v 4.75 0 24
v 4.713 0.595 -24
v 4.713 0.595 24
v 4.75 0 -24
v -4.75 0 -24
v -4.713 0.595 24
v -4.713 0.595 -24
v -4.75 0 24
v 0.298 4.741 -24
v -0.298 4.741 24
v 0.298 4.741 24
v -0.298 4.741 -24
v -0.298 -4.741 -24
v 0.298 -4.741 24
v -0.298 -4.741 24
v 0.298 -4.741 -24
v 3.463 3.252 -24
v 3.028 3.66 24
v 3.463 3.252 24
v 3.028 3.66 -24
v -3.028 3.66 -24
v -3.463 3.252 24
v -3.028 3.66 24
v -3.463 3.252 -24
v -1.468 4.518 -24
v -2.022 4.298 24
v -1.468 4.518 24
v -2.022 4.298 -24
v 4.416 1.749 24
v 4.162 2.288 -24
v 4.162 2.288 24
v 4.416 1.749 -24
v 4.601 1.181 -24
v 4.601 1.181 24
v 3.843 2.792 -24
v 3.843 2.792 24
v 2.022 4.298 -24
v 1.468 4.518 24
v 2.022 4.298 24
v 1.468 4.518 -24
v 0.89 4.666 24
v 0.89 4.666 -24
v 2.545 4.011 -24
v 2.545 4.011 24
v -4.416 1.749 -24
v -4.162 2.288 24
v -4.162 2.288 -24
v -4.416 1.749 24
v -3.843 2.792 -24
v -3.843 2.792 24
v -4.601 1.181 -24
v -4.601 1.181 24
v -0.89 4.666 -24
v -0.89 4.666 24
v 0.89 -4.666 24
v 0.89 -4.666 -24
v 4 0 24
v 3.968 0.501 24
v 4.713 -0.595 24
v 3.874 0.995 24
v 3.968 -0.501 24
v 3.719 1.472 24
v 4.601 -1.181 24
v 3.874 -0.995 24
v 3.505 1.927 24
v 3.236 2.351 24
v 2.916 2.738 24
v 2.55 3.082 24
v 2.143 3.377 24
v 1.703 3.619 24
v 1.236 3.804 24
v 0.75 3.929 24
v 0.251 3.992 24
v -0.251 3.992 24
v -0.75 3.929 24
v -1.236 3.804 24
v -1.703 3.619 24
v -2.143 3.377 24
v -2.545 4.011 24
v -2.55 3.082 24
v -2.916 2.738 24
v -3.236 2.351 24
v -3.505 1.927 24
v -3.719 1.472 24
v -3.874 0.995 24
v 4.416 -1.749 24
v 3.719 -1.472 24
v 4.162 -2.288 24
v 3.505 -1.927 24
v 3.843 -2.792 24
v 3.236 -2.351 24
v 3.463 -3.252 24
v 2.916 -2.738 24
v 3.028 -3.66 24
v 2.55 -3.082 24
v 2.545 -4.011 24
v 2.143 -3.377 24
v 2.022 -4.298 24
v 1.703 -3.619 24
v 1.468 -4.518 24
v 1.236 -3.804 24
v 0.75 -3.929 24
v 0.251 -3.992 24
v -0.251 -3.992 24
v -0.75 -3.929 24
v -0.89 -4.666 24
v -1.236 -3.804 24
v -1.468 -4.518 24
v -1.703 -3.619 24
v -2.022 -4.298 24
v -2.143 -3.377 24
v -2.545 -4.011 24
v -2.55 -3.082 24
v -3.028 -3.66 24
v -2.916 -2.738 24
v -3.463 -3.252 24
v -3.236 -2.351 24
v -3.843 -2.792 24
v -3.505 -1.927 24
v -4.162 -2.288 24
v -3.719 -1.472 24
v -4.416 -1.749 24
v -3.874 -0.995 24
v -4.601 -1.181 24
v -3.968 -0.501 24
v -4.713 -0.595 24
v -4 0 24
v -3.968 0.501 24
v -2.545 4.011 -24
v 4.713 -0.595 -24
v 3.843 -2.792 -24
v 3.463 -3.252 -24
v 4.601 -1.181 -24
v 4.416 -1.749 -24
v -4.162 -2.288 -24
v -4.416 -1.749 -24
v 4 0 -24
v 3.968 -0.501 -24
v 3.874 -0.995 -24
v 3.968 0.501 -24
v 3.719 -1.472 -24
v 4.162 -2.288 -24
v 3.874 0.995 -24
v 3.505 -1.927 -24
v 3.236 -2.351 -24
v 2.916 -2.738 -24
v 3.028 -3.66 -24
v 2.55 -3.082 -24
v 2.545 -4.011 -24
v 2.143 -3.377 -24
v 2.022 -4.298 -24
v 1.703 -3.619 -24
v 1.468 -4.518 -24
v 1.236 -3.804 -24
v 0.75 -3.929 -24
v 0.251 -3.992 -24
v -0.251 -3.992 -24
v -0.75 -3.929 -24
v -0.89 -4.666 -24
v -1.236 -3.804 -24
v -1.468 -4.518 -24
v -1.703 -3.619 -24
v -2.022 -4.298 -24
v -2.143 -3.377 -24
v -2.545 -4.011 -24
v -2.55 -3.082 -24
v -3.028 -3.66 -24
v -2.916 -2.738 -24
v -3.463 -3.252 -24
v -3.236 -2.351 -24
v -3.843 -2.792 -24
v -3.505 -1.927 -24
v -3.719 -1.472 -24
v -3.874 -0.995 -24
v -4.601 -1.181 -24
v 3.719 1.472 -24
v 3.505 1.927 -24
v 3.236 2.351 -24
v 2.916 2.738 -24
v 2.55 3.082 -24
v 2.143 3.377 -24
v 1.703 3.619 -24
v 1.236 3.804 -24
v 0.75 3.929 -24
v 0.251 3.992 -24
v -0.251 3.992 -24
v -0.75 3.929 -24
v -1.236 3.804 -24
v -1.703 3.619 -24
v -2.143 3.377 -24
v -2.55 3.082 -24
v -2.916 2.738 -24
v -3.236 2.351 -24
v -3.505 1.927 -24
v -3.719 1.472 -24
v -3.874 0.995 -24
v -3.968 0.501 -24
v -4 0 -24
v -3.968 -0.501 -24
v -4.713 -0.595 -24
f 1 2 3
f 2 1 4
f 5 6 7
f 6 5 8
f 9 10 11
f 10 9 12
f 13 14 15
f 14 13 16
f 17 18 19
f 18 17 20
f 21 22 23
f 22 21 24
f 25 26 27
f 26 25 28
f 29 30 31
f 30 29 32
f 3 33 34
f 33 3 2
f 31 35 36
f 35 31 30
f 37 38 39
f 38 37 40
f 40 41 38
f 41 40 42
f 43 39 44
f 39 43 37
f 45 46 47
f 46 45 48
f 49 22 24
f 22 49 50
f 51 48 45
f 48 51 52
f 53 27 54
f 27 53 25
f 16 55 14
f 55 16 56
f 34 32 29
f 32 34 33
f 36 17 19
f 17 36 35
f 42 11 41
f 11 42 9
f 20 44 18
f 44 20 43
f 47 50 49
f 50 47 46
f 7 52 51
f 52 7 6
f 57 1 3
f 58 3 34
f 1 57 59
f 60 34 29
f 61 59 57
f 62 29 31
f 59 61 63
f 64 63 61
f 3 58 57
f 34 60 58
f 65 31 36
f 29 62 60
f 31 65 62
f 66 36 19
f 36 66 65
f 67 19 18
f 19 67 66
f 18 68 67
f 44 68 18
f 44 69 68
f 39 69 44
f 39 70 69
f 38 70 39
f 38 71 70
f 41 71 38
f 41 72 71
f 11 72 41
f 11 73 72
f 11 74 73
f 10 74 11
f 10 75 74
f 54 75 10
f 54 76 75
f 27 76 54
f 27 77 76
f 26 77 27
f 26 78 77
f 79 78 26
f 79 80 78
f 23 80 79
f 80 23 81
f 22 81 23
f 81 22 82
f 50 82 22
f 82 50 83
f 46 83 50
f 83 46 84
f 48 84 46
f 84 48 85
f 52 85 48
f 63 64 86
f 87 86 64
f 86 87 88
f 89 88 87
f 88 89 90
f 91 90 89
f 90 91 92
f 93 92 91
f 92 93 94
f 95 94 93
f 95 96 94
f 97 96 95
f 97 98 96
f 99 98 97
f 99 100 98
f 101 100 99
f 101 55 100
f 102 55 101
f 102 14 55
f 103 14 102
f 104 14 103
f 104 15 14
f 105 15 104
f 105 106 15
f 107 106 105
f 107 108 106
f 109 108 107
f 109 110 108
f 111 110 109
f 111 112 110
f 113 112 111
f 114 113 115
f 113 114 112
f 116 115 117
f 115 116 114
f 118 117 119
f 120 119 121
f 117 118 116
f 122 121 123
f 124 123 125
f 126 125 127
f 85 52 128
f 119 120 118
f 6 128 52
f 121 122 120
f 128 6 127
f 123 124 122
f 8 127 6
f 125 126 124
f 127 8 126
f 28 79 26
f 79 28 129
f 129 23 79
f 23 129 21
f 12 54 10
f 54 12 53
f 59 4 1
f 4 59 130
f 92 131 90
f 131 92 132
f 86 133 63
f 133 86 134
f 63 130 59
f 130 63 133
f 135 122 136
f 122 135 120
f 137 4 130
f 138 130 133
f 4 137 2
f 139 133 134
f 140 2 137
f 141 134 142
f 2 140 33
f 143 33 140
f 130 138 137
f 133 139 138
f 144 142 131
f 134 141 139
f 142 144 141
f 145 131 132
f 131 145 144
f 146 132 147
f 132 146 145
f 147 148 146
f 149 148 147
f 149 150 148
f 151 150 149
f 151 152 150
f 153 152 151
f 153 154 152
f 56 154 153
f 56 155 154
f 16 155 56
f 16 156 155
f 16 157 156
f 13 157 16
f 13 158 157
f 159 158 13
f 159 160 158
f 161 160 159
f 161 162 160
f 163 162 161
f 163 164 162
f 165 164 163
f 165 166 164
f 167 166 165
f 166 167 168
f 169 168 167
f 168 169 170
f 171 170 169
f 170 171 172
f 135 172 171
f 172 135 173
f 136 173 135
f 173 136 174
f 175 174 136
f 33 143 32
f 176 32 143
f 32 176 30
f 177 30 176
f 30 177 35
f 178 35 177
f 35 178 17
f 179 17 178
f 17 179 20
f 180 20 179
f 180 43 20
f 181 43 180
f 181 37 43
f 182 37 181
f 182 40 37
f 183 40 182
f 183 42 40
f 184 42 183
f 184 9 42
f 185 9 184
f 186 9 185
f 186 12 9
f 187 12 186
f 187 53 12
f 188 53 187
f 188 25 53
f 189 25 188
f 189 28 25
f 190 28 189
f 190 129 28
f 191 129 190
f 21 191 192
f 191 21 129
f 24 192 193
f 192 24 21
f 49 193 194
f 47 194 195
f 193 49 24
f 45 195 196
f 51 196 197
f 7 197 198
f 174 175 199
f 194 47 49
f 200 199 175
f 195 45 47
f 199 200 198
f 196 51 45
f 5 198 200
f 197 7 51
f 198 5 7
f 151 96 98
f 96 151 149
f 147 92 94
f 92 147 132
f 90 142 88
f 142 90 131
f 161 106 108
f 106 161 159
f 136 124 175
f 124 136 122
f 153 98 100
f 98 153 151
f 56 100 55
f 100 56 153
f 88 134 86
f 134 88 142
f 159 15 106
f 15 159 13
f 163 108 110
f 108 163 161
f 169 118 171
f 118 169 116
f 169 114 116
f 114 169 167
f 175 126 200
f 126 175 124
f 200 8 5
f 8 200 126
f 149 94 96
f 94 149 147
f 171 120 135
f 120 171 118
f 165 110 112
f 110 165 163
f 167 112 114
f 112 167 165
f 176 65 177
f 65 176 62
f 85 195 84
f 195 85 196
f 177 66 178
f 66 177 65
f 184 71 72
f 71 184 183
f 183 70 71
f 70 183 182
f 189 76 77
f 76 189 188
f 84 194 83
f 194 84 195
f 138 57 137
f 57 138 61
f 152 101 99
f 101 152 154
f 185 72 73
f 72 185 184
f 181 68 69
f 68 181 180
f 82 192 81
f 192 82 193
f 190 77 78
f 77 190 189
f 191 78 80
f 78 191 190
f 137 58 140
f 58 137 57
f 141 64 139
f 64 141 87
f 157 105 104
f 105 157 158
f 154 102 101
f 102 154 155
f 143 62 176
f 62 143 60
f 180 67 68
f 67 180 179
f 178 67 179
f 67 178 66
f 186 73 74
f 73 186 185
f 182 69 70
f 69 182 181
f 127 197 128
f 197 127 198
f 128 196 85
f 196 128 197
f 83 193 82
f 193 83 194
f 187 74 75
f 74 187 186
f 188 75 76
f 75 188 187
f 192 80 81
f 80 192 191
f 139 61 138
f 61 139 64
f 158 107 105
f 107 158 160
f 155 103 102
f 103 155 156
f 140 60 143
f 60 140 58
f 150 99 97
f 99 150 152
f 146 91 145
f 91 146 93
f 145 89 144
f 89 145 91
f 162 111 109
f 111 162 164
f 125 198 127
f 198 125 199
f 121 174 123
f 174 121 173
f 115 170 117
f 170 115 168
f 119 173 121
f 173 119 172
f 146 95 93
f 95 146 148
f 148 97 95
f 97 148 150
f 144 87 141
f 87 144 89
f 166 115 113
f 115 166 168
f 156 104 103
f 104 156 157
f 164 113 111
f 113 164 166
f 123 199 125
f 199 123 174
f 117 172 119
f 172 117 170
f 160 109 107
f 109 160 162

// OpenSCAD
$fn = 50;


difference() {
	union() {
		translate(v = [0, 0, -24.0000000000]) {
			cylinder(h = 48, r = 4.7500000000);
		}
	}
	union() {
		translate(v = [0, 0, -100.0000000000]) {
			cylinder(h = 200, r = 4.0000000000);
		}
	}
}
